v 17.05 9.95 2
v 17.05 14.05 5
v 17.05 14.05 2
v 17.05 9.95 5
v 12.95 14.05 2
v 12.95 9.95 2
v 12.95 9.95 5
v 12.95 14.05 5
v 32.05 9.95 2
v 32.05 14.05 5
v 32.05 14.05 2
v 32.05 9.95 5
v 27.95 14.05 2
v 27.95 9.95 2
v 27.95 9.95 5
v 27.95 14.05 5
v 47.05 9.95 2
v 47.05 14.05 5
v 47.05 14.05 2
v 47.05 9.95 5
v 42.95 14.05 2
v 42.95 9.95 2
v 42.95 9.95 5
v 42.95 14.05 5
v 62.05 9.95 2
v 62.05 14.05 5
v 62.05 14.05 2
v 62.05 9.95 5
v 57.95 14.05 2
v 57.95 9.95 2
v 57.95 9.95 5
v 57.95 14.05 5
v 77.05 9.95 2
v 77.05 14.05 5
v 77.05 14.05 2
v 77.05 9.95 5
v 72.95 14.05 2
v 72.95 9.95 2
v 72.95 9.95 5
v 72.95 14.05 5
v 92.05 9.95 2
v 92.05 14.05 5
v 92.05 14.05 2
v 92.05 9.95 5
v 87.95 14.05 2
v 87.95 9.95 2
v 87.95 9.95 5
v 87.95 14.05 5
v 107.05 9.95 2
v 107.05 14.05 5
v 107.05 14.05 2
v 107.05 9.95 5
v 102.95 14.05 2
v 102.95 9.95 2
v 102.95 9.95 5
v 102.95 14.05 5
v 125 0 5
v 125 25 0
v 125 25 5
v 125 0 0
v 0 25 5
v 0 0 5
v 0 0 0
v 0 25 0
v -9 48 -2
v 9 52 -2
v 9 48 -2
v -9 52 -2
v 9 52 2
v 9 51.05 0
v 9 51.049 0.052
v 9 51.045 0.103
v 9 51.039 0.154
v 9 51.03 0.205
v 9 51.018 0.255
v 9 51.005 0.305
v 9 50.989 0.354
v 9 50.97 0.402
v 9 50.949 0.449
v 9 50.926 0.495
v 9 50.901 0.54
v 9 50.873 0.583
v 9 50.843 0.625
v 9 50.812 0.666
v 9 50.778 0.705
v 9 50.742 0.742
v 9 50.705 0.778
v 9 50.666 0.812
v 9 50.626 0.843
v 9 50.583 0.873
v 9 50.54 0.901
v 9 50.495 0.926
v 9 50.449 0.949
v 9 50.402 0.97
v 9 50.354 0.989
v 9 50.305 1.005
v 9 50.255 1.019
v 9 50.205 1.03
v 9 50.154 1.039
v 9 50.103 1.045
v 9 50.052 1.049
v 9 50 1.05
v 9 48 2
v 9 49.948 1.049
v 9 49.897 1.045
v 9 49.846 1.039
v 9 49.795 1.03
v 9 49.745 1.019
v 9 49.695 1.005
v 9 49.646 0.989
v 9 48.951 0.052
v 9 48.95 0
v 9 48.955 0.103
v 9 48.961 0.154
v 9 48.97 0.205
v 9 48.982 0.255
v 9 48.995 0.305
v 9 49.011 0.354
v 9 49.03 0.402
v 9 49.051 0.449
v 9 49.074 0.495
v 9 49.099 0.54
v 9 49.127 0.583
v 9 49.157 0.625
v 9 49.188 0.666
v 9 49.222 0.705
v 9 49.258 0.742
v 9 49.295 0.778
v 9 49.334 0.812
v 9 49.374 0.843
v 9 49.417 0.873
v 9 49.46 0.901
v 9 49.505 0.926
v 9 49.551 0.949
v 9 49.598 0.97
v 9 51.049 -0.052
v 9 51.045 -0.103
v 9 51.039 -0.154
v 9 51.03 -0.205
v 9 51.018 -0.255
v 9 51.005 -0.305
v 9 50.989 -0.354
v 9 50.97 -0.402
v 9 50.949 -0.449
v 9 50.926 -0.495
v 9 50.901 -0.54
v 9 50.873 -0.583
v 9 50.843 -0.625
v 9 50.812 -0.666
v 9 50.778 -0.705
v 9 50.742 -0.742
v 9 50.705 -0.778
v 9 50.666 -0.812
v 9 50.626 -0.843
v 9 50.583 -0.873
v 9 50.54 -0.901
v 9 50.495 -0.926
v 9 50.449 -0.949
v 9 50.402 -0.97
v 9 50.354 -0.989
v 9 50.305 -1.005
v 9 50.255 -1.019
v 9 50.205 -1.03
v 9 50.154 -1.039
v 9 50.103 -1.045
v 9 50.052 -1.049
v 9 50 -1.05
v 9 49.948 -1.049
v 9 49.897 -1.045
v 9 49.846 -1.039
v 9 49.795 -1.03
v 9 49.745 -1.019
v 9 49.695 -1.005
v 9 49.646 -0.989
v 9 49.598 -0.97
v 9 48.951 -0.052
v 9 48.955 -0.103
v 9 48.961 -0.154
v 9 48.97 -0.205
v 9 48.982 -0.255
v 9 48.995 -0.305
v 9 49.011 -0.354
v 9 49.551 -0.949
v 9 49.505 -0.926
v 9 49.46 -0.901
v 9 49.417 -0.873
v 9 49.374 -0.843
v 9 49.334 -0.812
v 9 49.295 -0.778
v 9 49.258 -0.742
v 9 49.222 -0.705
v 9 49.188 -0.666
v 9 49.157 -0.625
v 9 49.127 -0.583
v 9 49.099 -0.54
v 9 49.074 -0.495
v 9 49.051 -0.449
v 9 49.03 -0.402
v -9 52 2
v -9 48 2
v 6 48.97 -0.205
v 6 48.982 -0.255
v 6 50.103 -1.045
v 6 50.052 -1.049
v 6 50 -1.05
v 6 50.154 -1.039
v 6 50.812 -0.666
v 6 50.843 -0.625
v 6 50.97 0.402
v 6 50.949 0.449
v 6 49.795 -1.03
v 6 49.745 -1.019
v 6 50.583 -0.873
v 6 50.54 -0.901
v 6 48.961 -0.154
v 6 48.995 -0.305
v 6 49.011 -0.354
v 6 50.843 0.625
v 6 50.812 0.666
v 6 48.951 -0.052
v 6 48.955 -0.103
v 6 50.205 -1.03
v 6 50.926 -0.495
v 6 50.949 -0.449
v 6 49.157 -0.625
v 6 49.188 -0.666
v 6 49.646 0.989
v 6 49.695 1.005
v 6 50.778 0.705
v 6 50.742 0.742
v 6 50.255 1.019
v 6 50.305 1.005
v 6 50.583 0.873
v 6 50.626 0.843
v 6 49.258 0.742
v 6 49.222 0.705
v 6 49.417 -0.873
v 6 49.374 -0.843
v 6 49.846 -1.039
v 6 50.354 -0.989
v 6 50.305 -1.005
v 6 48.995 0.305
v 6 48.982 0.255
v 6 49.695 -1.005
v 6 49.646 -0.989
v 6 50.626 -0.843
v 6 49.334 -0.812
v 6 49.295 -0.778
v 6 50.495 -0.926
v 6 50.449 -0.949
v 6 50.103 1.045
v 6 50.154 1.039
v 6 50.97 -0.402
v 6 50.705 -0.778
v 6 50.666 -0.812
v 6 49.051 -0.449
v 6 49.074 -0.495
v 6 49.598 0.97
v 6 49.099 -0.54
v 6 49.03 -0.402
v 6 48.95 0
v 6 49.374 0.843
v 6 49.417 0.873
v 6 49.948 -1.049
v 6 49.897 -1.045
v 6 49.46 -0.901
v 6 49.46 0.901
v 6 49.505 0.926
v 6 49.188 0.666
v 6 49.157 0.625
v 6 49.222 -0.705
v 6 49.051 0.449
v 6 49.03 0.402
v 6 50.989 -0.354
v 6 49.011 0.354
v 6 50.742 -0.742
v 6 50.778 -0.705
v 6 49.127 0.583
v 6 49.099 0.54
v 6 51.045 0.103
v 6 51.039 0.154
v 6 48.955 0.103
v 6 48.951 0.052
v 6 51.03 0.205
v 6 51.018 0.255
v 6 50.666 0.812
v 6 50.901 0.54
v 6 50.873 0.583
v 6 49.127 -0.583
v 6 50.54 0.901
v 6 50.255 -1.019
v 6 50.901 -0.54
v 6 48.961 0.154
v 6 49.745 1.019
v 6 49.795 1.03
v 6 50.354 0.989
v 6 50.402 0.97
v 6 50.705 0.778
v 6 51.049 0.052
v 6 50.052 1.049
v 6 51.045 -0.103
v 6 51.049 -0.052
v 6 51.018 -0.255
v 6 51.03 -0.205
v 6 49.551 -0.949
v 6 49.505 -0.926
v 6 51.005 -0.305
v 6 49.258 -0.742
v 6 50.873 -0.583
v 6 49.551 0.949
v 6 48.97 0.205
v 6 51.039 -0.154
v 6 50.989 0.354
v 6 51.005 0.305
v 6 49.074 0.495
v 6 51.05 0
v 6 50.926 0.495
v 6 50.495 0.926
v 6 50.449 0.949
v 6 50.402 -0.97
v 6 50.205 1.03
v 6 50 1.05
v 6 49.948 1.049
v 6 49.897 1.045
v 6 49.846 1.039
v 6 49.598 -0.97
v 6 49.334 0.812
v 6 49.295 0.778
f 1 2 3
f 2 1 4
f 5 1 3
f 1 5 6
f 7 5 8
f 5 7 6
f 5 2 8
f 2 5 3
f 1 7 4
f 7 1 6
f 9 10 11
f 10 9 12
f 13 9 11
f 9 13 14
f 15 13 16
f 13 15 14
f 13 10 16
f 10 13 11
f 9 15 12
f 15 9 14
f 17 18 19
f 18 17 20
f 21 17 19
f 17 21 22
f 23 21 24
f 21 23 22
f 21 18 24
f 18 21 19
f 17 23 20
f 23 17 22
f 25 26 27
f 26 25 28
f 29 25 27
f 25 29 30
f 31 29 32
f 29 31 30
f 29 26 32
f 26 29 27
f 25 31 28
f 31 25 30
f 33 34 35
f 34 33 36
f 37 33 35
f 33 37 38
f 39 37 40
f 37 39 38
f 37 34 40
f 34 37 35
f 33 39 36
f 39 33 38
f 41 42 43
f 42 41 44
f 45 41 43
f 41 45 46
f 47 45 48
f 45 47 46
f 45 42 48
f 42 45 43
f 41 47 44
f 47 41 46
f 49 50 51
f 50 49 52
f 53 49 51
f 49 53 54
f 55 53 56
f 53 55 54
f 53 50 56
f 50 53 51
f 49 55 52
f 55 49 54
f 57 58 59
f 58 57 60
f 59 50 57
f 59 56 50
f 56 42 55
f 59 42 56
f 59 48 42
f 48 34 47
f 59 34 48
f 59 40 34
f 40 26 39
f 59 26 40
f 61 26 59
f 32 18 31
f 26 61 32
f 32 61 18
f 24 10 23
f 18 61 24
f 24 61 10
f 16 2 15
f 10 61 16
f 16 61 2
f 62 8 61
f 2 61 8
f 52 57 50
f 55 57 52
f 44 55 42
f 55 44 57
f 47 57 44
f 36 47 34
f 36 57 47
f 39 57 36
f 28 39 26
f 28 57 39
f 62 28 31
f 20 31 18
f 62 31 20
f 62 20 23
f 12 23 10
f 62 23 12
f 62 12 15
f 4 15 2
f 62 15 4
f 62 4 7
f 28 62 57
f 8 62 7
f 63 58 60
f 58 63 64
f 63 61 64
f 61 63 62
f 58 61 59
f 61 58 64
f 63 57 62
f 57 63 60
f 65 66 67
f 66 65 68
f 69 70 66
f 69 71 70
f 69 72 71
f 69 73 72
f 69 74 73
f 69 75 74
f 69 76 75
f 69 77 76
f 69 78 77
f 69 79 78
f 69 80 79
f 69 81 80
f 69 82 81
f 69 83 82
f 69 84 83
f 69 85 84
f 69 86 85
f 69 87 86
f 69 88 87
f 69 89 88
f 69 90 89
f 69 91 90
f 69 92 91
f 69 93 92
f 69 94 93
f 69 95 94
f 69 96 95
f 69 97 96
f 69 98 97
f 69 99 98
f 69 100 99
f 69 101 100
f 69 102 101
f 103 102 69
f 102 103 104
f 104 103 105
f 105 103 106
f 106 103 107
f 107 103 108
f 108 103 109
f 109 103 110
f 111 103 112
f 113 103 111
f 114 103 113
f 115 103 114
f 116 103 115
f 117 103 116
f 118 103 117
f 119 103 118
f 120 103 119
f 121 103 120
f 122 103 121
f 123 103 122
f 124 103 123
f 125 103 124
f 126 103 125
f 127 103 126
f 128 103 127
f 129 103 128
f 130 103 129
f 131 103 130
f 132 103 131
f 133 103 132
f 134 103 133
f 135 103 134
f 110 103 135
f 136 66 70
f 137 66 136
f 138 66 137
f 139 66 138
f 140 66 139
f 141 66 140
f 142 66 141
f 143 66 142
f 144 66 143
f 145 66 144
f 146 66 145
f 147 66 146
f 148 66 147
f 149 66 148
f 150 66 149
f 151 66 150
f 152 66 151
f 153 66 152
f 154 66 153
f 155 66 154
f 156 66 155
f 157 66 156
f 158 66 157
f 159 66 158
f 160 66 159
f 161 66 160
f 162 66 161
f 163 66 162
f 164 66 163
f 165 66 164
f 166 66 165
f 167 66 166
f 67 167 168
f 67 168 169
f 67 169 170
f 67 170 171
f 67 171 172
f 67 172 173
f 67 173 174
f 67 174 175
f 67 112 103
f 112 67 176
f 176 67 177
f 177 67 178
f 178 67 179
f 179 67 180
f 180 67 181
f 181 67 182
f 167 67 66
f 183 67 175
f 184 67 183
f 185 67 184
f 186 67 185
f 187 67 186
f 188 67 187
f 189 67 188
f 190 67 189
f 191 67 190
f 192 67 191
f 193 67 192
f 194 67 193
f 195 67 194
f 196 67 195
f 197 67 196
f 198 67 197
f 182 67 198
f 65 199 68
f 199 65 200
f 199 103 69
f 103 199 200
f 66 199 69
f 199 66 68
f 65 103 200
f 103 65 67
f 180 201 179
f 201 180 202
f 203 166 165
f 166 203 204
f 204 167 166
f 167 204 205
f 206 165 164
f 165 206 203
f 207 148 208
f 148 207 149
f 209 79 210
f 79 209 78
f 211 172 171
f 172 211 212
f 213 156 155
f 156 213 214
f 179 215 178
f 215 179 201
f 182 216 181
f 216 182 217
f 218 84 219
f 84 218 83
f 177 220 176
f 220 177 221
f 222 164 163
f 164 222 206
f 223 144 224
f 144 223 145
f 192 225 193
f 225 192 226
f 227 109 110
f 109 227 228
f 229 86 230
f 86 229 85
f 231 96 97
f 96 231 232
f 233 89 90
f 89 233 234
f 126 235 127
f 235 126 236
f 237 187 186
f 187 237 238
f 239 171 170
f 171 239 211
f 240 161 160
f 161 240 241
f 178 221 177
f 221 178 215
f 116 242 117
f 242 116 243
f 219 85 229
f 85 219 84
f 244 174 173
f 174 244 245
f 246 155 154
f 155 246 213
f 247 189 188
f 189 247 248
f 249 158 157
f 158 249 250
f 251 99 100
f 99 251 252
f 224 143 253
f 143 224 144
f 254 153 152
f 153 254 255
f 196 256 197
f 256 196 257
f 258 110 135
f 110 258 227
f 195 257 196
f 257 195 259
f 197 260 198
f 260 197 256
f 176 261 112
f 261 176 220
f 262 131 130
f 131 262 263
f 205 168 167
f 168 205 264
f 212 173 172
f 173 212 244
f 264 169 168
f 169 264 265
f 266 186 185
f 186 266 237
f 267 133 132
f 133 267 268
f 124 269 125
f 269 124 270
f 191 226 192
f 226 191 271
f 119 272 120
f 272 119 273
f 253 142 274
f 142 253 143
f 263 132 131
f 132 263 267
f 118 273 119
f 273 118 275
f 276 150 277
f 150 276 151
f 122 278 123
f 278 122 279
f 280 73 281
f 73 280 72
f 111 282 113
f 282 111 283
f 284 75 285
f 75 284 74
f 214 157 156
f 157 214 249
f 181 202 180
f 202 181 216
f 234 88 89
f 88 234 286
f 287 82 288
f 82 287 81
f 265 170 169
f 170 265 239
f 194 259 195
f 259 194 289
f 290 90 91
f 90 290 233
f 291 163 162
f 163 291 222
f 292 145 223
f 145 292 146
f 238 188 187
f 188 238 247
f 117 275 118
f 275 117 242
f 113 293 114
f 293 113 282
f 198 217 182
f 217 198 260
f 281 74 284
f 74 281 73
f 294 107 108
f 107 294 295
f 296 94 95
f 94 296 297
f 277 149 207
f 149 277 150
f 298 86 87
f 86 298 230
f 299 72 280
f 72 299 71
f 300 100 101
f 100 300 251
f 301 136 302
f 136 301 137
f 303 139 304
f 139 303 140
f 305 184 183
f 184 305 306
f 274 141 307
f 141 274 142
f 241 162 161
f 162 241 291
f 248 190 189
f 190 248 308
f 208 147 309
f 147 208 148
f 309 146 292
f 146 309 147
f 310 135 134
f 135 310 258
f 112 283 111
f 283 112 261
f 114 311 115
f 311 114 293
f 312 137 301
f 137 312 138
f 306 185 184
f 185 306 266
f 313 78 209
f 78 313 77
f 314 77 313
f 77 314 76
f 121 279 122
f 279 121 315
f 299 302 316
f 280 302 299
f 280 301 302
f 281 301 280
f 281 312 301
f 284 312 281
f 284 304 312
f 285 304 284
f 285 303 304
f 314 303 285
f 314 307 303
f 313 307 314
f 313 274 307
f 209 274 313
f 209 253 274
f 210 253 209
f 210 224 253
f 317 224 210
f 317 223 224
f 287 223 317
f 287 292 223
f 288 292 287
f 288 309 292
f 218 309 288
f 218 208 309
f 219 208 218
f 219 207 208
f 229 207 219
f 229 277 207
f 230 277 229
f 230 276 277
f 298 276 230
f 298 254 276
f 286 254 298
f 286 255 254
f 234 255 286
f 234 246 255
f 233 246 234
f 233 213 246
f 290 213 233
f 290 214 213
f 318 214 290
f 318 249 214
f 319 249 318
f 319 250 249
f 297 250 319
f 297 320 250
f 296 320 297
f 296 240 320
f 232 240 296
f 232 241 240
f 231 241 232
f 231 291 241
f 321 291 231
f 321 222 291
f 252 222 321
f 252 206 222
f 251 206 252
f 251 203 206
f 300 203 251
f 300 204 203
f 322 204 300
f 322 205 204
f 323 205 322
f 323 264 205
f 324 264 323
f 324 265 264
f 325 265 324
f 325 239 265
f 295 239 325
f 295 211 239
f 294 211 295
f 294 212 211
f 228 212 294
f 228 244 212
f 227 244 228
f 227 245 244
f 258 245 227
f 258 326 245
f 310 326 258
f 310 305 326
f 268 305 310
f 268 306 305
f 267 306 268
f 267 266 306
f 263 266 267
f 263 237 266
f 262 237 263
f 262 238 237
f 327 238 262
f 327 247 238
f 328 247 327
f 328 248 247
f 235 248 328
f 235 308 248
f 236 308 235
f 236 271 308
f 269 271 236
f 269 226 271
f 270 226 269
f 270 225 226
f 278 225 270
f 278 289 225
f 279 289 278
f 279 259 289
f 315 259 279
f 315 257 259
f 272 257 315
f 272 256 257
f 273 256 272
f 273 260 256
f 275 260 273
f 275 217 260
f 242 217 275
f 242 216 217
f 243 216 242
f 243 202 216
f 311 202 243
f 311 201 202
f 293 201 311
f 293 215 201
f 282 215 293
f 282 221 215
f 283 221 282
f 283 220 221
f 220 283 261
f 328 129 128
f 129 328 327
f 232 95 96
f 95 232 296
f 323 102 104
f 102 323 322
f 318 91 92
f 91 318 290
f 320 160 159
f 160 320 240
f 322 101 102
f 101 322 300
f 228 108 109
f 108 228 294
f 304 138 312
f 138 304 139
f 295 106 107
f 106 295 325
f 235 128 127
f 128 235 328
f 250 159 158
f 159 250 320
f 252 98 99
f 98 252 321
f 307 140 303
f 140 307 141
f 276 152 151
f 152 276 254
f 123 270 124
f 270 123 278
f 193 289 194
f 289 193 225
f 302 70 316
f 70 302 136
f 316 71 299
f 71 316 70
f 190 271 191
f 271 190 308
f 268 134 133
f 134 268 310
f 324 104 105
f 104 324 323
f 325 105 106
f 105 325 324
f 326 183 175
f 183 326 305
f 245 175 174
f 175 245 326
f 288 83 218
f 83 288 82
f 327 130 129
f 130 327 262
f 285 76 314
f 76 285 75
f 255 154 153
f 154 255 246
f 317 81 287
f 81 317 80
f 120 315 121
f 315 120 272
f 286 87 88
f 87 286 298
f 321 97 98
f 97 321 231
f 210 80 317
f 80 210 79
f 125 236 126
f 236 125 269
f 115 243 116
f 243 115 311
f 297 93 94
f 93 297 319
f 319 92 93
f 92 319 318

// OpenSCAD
difference() {
cube([125,25,5]);
for(i=[15:15:115]) {
    translate([i,12,8])
    cube([4.1,4.1,12], center=true);
}
}

translate([0,50,0])
rotate([0,90,0])
difference() {
    cube([4,4,18], center=true);
    translate([0,0,6])
    cylinder(d=2.1, h=3.1, $fn=128);
}
